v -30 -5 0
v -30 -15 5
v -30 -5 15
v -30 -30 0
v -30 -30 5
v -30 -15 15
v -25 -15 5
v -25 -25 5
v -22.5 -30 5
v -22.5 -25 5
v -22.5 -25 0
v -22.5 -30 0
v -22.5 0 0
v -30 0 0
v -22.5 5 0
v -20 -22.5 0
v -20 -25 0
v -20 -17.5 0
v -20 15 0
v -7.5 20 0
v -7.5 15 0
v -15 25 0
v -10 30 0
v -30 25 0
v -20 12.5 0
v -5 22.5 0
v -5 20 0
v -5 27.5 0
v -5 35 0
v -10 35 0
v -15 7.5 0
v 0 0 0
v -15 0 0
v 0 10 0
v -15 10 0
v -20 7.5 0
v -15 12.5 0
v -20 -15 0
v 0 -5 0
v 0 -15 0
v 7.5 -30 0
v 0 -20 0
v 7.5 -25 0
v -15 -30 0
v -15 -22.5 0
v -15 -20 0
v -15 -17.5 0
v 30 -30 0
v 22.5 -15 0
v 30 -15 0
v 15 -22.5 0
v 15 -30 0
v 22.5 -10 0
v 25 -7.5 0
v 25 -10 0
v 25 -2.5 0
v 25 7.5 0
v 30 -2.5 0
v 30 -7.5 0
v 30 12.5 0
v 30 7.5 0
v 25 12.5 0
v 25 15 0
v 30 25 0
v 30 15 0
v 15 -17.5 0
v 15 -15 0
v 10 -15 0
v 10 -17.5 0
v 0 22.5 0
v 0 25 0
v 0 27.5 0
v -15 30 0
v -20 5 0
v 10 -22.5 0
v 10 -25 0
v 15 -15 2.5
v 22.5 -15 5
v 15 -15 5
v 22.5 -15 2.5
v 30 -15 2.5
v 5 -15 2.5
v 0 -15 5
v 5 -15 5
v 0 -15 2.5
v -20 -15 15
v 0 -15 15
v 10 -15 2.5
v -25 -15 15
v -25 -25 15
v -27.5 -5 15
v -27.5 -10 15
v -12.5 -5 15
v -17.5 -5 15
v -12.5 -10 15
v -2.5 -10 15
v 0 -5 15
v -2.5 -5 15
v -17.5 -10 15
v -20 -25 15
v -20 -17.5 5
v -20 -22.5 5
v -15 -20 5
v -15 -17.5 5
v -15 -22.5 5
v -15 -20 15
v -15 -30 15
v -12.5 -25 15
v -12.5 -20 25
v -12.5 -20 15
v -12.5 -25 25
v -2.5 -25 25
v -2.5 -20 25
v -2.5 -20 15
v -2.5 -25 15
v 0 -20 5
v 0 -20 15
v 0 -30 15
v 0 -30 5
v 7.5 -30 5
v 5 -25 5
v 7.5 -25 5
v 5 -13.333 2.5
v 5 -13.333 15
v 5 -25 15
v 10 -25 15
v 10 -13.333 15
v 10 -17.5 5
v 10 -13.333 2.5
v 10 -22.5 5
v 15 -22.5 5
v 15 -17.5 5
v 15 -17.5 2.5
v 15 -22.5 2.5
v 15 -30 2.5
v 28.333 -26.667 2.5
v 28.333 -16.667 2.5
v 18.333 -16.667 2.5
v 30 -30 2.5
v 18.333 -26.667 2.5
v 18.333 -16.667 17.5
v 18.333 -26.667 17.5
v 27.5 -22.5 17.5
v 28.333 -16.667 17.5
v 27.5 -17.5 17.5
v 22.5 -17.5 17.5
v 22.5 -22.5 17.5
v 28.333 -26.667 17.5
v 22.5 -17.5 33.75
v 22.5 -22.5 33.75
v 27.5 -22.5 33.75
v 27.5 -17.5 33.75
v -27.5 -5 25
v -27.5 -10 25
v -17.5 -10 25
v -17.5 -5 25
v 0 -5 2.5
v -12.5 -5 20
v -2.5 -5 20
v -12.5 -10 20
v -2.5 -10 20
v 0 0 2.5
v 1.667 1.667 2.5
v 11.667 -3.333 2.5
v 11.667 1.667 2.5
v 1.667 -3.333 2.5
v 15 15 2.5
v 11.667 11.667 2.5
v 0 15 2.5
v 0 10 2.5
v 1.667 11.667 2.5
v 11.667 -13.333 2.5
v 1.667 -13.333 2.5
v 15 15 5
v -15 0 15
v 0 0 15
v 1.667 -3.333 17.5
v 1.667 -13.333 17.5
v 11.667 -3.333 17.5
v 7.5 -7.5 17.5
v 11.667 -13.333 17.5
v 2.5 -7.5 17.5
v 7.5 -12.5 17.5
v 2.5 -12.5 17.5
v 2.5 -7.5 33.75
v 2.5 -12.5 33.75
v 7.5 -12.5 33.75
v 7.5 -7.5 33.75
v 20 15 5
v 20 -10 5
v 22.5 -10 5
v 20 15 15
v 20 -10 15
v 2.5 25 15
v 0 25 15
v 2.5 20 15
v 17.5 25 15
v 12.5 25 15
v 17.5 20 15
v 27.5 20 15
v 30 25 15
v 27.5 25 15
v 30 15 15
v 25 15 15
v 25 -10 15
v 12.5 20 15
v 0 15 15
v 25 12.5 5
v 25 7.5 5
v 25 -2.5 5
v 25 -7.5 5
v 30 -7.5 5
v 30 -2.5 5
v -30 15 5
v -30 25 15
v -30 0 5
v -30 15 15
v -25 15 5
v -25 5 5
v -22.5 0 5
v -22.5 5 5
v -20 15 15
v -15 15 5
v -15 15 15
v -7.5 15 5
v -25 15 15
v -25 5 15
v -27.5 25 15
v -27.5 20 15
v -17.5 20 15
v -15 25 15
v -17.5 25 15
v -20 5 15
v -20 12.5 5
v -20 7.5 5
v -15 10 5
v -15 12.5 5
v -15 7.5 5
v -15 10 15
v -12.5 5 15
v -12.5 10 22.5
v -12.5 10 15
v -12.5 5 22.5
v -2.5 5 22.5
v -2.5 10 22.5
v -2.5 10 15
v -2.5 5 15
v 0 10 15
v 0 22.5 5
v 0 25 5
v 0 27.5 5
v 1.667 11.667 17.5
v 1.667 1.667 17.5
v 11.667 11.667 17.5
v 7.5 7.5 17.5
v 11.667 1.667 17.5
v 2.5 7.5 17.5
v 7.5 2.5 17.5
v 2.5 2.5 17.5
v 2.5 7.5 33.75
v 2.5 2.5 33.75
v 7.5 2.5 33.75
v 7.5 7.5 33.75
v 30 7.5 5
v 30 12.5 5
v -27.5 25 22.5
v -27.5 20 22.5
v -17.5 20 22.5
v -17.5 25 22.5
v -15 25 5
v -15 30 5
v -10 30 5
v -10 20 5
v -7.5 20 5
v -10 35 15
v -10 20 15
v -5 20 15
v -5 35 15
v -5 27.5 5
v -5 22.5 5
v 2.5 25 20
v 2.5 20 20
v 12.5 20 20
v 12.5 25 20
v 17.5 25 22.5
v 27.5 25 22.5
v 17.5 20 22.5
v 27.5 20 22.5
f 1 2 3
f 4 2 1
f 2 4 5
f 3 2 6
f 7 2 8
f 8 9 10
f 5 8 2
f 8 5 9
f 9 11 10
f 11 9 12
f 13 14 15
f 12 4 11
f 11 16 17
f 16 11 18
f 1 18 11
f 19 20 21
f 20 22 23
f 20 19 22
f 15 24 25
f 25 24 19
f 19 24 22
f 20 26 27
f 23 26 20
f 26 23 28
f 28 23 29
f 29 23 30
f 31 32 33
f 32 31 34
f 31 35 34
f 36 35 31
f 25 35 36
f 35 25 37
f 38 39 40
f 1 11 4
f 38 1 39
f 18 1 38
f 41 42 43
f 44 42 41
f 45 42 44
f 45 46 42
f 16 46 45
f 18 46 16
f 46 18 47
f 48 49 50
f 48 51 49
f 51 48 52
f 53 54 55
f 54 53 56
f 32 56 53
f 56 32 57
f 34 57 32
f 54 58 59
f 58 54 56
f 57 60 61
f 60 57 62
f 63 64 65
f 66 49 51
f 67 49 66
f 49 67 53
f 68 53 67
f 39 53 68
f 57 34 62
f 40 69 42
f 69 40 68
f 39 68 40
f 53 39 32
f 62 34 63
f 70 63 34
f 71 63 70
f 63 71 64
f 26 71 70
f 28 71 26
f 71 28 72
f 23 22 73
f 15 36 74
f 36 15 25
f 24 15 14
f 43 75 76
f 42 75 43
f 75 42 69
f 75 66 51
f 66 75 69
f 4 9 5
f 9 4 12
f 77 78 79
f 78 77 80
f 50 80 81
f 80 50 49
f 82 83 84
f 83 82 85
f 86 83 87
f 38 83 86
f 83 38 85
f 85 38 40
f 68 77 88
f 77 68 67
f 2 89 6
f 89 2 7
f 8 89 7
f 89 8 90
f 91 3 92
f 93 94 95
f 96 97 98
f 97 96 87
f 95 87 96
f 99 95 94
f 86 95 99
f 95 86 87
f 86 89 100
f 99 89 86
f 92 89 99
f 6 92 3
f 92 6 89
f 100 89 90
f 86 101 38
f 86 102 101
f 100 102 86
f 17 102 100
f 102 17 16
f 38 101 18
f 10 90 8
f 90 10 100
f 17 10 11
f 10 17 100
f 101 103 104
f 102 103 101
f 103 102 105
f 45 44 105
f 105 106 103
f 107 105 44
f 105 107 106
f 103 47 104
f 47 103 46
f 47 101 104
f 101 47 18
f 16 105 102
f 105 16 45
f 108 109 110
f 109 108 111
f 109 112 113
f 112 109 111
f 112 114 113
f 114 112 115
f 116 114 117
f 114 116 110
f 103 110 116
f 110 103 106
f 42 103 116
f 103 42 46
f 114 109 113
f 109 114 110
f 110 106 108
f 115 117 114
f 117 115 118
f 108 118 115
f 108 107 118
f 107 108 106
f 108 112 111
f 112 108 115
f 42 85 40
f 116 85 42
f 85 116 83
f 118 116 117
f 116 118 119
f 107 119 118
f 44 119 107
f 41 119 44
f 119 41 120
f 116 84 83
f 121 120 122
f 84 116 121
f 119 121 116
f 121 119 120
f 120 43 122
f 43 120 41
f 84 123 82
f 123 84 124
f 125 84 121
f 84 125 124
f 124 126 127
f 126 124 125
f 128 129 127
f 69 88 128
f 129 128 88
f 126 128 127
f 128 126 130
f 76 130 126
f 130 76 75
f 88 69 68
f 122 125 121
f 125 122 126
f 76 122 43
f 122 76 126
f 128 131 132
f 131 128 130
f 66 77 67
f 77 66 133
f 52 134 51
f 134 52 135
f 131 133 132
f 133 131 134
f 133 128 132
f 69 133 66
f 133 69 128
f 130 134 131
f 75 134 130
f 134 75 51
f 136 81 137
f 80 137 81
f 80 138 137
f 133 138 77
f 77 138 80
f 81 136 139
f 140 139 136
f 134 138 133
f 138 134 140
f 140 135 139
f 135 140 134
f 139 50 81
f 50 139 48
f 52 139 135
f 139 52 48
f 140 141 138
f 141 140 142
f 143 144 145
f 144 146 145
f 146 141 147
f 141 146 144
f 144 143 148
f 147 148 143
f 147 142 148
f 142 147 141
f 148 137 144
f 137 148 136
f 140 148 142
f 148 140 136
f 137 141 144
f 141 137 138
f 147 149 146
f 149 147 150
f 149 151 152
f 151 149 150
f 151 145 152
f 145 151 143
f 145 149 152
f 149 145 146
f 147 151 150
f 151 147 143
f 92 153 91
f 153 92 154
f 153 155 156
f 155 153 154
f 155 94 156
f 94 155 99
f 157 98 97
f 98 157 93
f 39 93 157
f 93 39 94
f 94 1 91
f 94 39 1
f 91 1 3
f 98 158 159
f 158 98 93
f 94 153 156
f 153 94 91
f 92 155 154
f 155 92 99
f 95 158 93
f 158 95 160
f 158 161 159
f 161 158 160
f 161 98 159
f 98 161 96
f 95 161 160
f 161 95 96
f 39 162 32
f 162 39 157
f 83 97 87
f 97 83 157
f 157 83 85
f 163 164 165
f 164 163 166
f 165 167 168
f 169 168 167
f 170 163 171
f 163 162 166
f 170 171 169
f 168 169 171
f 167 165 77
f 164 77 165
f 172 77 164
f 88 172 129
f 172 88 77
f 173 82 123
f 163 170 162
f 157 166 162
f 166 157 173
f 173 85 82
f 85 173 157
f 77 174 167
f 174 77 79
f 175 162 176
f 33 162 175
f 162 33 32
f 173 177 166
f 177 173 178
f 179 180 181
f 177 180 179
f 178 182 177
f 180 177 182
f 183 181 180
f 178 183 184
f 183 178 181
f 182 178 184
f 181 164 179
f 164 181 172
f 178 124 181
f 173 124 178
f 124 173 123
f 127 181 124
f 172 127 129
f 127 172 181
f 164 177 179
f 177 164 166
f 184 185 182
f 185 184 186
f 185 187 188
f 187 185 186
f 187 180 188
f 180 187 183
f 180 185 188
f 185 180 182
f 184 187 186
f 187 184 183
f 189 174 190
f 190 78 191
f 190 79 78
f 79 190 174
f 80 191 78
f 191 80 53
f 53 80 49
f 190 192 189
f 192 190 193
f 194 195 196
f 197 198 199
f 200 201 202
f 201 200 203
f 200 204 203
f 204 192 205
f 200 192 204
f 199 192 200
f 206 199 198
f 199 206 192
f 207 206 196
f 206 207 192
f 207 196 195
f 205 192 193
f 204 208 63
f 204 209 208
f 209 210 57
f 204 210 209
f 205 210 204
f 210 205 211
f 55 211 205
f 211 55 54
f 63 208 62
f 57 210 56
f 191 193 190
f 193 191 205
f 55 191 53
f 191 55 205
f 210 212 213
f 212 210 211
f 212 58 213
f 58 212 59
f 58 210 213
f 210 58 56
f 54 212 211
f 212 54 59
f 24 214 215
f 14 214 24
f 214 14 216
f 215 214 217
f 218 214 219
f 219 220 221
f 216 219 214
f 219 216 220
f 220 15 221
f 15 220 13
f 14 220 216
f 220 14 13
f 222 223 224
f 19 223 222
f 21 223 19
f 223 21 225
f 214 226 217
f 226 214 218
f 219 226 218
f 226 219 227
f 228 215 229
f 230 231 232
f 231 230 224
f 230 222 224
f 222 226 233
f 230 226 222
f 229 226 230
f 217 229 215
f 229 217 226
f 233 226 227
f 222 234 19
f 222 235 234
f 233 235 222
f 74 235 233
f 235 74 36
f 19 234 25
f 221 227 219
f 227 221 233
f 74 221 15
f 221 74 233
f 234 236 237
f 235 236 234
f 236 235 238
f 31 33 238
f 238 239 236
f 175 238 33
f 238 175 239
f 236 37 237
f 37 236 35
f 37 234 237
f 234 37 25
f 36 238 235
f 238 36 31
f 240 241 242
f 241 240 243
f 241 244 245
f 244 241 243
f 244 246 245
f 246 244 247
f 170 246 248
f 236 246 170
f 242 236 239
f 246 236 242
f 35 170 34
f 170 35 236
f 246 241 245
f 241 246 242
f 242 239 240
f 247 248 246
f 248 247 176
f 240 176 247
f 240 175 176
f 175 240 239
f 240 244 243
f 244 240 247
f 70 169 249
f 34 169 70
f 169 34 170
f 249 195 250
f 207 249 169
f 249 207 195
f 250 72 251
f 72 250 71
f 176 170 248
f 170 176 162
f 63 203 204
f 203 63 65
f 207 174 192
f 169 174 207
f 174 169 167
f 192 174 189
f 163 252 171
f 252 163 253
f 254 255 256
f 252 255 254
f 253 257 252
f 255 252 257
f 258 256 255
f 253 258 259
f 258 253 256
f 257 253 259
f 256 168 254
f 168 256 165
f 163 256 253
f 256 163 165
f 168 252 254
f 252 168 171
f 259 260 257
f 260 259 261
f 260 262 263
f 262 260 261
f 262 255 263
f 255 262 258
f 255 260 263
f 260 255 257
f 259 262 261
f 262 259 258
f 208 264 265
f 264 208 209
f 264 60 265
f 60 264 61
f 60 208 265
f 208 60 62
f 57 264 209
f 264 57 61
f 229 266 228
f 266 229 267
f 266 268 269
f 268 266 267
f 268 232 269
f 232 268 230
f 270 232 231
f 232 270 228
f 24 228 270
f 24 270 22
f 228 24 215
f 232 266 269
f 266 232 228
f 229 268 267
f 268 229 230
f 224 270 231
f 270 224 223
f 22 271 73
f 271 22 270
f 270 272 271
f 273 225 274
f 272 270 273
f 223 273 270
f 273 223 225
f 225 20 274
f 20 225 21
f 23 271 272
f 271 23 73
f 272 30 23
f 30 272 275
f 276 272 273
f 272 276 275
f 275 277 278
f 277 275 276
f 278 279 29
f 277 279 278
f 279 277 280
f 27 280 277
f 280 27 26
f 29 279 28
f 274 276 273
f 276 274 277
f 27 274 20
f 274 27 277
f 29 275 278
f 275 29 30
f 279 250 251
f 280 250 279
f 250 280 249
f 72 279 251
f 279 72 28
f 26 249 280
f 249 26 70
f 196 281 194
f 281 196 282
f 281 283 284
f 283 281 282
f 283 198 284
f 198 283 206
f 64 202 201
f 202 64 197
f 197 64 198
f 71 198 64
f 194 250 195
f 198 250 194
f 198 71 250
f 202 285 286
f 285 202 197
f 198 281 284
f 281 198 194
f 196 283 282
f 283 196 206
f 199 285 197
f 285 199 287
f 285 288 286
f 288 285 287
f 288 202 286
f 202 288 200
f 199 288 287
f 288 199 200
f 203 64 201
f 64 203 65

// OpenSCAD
    // Malevitch Power Pack
// Empiler des formes pour construire un quartier suprématiste


$vpt = [ 0, 0, 12 ]; // translation de la vue par défaut
$vpr = [ 60, 0.00, 45 ]; // rotation de la vue par défaut
$vpd = 190;

tailledebloc = 15; // taille de nos immeubles

// des tailles standards intéressantes :

sixieme_bloc    = tailledebloc/6 ;

tiers_bloc      = tailledebloc/3 ;

demi_bloc       = tailledebloc/2 ;
deuxtiers_bloc  = (tailledebloc/3)*2 ; 

unetdemi_bloc   = tailledebloc*1.5 ;
un_bloc         = tailledebloc ;
double_bloc     = tailledebloc*2 ;

// la position de chaque immeuble sur la grille du quartier :
    
lespositions = [
[ tailledebloc*1, 0, 0 ] // l'index 0 et 1 sont identiques pour pouvoir commencer à 1

,[ tailledebloc*1, 0, 0 ] // position 1 décalé d'une taille de bloc: tableau plus lisible
,[ tailledebloc*2, 0, 0 ]
,[ tailledebloc*3, 0, 0 ]
,[ tailledebloc*4, 0, 0 ]

,[ tailledebloc*1, tailledebloc*1, 0 ] // nous passons à la ligne de bloc suivante
,[ tailledebloc*2, tailledebloc*1, 0 ]
,[ tailledebloc*3, tailledebloc*1, 0 ]
,[ tailledebloc*4, tailledebloc*1, 0 ] // ceci est l'etape 8…

,[ tailledebloc*1, tailledebloc*2, 0 ]
,[ tailledebloc*2, tailledebloc*2, 0 ]
,[ tailledebloc*3, tailledebloc*2, 0 ]
,[ tailledebloc*4, tailledebloc*2, 0 ] // ceci est l'etape 12…

,[ tailledebloc*1, tailledebloc*3, 0 ]
,[ tailledebloc*2, tailledebloc*3, 0 ]
,[ tailledebloc*3, tailledebloc*3, 0 ]
,[ tailledebloc*4, tailledebloc*3, 0 ] // ceci est l'etape 16 !!

];

echo (lespositions);

// un tableau pour créer des décalages vers des 4 angles selon la position sur la grille
lesdecalages = [
[sixieme_bloc, sixieme_bloc, 0]
,[-sixieme_bloc, sixieme_bloc, 0]
,[sixieme_bloc, -sixieme_bloc, 0],
,[-sixieme_bloc, -sixieme_bloc, 0]
];

module angle(etape){
translate(lespositions[etape]){
	union() {
        
        cube([demi_bloc,un_bloc,tiers_bloc]); // bas 
        
        translate([tiers_bloc,tiers_bloc,0]) // haut 
            cube([tiers_bloc,,un_bloc,un_bloc]);
          
        
          translate([demi_bloc,demi_bloc,0]) // droite
            cube([demi_bloc,,tiers_bloc,tiers_bloc]);
          
          
        }}}

module building(etape){
translate(lespositions[etape]){
    
    hauteur = ((etape%3)+2)/2;
    
	union() {
        
        
		translate([sixieme_bloc,tiers_bloc,un_bloc]) // haut
		cube([deuxtiers_bloc,tiers_bloc,tiers_bloc*hauteur]);
		
        
        cube([un_bloc, deuxtiers_bloc, un_bloc]); // bas
       }}}
       
      
       
module tour(etape){
translate(lespositions[etape]){
    
    decalage = lesdecalages [etape%4];
    
	union() {
		cube([un_bloc,un_bloc,sixieme_bloc]); // bas
        
		translate([sixieme_bloc,sixieme_bloc,sixieme_bloc])
            translate(decalage/3)
            cube([deuxtiers_bloc,deuxtiers_bloc,un_bloc]); // milieu
        
       translate([tiers_bloc,tiers_bloc,un_bloc])
           translate(decalage)
           cube([tiers_bloc,tiers_bloc,un_bloc*1.25]); // haut 
       }}}

translate([ -un_bloc*3, -un_bloc*2, 0 ]){ // recentrage
union() {
// faites la liste de vos immeubles ici. 
// (ils sont dans un Union pour devenir un seul bloc)


angle(1);
building(2);
angle(3);
tour(4);
building(5);
building(6);
tour(7);
angle(8);
angle(9);
building(10);
tour(11);
angle(12);
building(13);
angle(14);
building(15);
building(16);
    
    
// ici c'est la fin !
} // fin de union()
} // fin de translate()
